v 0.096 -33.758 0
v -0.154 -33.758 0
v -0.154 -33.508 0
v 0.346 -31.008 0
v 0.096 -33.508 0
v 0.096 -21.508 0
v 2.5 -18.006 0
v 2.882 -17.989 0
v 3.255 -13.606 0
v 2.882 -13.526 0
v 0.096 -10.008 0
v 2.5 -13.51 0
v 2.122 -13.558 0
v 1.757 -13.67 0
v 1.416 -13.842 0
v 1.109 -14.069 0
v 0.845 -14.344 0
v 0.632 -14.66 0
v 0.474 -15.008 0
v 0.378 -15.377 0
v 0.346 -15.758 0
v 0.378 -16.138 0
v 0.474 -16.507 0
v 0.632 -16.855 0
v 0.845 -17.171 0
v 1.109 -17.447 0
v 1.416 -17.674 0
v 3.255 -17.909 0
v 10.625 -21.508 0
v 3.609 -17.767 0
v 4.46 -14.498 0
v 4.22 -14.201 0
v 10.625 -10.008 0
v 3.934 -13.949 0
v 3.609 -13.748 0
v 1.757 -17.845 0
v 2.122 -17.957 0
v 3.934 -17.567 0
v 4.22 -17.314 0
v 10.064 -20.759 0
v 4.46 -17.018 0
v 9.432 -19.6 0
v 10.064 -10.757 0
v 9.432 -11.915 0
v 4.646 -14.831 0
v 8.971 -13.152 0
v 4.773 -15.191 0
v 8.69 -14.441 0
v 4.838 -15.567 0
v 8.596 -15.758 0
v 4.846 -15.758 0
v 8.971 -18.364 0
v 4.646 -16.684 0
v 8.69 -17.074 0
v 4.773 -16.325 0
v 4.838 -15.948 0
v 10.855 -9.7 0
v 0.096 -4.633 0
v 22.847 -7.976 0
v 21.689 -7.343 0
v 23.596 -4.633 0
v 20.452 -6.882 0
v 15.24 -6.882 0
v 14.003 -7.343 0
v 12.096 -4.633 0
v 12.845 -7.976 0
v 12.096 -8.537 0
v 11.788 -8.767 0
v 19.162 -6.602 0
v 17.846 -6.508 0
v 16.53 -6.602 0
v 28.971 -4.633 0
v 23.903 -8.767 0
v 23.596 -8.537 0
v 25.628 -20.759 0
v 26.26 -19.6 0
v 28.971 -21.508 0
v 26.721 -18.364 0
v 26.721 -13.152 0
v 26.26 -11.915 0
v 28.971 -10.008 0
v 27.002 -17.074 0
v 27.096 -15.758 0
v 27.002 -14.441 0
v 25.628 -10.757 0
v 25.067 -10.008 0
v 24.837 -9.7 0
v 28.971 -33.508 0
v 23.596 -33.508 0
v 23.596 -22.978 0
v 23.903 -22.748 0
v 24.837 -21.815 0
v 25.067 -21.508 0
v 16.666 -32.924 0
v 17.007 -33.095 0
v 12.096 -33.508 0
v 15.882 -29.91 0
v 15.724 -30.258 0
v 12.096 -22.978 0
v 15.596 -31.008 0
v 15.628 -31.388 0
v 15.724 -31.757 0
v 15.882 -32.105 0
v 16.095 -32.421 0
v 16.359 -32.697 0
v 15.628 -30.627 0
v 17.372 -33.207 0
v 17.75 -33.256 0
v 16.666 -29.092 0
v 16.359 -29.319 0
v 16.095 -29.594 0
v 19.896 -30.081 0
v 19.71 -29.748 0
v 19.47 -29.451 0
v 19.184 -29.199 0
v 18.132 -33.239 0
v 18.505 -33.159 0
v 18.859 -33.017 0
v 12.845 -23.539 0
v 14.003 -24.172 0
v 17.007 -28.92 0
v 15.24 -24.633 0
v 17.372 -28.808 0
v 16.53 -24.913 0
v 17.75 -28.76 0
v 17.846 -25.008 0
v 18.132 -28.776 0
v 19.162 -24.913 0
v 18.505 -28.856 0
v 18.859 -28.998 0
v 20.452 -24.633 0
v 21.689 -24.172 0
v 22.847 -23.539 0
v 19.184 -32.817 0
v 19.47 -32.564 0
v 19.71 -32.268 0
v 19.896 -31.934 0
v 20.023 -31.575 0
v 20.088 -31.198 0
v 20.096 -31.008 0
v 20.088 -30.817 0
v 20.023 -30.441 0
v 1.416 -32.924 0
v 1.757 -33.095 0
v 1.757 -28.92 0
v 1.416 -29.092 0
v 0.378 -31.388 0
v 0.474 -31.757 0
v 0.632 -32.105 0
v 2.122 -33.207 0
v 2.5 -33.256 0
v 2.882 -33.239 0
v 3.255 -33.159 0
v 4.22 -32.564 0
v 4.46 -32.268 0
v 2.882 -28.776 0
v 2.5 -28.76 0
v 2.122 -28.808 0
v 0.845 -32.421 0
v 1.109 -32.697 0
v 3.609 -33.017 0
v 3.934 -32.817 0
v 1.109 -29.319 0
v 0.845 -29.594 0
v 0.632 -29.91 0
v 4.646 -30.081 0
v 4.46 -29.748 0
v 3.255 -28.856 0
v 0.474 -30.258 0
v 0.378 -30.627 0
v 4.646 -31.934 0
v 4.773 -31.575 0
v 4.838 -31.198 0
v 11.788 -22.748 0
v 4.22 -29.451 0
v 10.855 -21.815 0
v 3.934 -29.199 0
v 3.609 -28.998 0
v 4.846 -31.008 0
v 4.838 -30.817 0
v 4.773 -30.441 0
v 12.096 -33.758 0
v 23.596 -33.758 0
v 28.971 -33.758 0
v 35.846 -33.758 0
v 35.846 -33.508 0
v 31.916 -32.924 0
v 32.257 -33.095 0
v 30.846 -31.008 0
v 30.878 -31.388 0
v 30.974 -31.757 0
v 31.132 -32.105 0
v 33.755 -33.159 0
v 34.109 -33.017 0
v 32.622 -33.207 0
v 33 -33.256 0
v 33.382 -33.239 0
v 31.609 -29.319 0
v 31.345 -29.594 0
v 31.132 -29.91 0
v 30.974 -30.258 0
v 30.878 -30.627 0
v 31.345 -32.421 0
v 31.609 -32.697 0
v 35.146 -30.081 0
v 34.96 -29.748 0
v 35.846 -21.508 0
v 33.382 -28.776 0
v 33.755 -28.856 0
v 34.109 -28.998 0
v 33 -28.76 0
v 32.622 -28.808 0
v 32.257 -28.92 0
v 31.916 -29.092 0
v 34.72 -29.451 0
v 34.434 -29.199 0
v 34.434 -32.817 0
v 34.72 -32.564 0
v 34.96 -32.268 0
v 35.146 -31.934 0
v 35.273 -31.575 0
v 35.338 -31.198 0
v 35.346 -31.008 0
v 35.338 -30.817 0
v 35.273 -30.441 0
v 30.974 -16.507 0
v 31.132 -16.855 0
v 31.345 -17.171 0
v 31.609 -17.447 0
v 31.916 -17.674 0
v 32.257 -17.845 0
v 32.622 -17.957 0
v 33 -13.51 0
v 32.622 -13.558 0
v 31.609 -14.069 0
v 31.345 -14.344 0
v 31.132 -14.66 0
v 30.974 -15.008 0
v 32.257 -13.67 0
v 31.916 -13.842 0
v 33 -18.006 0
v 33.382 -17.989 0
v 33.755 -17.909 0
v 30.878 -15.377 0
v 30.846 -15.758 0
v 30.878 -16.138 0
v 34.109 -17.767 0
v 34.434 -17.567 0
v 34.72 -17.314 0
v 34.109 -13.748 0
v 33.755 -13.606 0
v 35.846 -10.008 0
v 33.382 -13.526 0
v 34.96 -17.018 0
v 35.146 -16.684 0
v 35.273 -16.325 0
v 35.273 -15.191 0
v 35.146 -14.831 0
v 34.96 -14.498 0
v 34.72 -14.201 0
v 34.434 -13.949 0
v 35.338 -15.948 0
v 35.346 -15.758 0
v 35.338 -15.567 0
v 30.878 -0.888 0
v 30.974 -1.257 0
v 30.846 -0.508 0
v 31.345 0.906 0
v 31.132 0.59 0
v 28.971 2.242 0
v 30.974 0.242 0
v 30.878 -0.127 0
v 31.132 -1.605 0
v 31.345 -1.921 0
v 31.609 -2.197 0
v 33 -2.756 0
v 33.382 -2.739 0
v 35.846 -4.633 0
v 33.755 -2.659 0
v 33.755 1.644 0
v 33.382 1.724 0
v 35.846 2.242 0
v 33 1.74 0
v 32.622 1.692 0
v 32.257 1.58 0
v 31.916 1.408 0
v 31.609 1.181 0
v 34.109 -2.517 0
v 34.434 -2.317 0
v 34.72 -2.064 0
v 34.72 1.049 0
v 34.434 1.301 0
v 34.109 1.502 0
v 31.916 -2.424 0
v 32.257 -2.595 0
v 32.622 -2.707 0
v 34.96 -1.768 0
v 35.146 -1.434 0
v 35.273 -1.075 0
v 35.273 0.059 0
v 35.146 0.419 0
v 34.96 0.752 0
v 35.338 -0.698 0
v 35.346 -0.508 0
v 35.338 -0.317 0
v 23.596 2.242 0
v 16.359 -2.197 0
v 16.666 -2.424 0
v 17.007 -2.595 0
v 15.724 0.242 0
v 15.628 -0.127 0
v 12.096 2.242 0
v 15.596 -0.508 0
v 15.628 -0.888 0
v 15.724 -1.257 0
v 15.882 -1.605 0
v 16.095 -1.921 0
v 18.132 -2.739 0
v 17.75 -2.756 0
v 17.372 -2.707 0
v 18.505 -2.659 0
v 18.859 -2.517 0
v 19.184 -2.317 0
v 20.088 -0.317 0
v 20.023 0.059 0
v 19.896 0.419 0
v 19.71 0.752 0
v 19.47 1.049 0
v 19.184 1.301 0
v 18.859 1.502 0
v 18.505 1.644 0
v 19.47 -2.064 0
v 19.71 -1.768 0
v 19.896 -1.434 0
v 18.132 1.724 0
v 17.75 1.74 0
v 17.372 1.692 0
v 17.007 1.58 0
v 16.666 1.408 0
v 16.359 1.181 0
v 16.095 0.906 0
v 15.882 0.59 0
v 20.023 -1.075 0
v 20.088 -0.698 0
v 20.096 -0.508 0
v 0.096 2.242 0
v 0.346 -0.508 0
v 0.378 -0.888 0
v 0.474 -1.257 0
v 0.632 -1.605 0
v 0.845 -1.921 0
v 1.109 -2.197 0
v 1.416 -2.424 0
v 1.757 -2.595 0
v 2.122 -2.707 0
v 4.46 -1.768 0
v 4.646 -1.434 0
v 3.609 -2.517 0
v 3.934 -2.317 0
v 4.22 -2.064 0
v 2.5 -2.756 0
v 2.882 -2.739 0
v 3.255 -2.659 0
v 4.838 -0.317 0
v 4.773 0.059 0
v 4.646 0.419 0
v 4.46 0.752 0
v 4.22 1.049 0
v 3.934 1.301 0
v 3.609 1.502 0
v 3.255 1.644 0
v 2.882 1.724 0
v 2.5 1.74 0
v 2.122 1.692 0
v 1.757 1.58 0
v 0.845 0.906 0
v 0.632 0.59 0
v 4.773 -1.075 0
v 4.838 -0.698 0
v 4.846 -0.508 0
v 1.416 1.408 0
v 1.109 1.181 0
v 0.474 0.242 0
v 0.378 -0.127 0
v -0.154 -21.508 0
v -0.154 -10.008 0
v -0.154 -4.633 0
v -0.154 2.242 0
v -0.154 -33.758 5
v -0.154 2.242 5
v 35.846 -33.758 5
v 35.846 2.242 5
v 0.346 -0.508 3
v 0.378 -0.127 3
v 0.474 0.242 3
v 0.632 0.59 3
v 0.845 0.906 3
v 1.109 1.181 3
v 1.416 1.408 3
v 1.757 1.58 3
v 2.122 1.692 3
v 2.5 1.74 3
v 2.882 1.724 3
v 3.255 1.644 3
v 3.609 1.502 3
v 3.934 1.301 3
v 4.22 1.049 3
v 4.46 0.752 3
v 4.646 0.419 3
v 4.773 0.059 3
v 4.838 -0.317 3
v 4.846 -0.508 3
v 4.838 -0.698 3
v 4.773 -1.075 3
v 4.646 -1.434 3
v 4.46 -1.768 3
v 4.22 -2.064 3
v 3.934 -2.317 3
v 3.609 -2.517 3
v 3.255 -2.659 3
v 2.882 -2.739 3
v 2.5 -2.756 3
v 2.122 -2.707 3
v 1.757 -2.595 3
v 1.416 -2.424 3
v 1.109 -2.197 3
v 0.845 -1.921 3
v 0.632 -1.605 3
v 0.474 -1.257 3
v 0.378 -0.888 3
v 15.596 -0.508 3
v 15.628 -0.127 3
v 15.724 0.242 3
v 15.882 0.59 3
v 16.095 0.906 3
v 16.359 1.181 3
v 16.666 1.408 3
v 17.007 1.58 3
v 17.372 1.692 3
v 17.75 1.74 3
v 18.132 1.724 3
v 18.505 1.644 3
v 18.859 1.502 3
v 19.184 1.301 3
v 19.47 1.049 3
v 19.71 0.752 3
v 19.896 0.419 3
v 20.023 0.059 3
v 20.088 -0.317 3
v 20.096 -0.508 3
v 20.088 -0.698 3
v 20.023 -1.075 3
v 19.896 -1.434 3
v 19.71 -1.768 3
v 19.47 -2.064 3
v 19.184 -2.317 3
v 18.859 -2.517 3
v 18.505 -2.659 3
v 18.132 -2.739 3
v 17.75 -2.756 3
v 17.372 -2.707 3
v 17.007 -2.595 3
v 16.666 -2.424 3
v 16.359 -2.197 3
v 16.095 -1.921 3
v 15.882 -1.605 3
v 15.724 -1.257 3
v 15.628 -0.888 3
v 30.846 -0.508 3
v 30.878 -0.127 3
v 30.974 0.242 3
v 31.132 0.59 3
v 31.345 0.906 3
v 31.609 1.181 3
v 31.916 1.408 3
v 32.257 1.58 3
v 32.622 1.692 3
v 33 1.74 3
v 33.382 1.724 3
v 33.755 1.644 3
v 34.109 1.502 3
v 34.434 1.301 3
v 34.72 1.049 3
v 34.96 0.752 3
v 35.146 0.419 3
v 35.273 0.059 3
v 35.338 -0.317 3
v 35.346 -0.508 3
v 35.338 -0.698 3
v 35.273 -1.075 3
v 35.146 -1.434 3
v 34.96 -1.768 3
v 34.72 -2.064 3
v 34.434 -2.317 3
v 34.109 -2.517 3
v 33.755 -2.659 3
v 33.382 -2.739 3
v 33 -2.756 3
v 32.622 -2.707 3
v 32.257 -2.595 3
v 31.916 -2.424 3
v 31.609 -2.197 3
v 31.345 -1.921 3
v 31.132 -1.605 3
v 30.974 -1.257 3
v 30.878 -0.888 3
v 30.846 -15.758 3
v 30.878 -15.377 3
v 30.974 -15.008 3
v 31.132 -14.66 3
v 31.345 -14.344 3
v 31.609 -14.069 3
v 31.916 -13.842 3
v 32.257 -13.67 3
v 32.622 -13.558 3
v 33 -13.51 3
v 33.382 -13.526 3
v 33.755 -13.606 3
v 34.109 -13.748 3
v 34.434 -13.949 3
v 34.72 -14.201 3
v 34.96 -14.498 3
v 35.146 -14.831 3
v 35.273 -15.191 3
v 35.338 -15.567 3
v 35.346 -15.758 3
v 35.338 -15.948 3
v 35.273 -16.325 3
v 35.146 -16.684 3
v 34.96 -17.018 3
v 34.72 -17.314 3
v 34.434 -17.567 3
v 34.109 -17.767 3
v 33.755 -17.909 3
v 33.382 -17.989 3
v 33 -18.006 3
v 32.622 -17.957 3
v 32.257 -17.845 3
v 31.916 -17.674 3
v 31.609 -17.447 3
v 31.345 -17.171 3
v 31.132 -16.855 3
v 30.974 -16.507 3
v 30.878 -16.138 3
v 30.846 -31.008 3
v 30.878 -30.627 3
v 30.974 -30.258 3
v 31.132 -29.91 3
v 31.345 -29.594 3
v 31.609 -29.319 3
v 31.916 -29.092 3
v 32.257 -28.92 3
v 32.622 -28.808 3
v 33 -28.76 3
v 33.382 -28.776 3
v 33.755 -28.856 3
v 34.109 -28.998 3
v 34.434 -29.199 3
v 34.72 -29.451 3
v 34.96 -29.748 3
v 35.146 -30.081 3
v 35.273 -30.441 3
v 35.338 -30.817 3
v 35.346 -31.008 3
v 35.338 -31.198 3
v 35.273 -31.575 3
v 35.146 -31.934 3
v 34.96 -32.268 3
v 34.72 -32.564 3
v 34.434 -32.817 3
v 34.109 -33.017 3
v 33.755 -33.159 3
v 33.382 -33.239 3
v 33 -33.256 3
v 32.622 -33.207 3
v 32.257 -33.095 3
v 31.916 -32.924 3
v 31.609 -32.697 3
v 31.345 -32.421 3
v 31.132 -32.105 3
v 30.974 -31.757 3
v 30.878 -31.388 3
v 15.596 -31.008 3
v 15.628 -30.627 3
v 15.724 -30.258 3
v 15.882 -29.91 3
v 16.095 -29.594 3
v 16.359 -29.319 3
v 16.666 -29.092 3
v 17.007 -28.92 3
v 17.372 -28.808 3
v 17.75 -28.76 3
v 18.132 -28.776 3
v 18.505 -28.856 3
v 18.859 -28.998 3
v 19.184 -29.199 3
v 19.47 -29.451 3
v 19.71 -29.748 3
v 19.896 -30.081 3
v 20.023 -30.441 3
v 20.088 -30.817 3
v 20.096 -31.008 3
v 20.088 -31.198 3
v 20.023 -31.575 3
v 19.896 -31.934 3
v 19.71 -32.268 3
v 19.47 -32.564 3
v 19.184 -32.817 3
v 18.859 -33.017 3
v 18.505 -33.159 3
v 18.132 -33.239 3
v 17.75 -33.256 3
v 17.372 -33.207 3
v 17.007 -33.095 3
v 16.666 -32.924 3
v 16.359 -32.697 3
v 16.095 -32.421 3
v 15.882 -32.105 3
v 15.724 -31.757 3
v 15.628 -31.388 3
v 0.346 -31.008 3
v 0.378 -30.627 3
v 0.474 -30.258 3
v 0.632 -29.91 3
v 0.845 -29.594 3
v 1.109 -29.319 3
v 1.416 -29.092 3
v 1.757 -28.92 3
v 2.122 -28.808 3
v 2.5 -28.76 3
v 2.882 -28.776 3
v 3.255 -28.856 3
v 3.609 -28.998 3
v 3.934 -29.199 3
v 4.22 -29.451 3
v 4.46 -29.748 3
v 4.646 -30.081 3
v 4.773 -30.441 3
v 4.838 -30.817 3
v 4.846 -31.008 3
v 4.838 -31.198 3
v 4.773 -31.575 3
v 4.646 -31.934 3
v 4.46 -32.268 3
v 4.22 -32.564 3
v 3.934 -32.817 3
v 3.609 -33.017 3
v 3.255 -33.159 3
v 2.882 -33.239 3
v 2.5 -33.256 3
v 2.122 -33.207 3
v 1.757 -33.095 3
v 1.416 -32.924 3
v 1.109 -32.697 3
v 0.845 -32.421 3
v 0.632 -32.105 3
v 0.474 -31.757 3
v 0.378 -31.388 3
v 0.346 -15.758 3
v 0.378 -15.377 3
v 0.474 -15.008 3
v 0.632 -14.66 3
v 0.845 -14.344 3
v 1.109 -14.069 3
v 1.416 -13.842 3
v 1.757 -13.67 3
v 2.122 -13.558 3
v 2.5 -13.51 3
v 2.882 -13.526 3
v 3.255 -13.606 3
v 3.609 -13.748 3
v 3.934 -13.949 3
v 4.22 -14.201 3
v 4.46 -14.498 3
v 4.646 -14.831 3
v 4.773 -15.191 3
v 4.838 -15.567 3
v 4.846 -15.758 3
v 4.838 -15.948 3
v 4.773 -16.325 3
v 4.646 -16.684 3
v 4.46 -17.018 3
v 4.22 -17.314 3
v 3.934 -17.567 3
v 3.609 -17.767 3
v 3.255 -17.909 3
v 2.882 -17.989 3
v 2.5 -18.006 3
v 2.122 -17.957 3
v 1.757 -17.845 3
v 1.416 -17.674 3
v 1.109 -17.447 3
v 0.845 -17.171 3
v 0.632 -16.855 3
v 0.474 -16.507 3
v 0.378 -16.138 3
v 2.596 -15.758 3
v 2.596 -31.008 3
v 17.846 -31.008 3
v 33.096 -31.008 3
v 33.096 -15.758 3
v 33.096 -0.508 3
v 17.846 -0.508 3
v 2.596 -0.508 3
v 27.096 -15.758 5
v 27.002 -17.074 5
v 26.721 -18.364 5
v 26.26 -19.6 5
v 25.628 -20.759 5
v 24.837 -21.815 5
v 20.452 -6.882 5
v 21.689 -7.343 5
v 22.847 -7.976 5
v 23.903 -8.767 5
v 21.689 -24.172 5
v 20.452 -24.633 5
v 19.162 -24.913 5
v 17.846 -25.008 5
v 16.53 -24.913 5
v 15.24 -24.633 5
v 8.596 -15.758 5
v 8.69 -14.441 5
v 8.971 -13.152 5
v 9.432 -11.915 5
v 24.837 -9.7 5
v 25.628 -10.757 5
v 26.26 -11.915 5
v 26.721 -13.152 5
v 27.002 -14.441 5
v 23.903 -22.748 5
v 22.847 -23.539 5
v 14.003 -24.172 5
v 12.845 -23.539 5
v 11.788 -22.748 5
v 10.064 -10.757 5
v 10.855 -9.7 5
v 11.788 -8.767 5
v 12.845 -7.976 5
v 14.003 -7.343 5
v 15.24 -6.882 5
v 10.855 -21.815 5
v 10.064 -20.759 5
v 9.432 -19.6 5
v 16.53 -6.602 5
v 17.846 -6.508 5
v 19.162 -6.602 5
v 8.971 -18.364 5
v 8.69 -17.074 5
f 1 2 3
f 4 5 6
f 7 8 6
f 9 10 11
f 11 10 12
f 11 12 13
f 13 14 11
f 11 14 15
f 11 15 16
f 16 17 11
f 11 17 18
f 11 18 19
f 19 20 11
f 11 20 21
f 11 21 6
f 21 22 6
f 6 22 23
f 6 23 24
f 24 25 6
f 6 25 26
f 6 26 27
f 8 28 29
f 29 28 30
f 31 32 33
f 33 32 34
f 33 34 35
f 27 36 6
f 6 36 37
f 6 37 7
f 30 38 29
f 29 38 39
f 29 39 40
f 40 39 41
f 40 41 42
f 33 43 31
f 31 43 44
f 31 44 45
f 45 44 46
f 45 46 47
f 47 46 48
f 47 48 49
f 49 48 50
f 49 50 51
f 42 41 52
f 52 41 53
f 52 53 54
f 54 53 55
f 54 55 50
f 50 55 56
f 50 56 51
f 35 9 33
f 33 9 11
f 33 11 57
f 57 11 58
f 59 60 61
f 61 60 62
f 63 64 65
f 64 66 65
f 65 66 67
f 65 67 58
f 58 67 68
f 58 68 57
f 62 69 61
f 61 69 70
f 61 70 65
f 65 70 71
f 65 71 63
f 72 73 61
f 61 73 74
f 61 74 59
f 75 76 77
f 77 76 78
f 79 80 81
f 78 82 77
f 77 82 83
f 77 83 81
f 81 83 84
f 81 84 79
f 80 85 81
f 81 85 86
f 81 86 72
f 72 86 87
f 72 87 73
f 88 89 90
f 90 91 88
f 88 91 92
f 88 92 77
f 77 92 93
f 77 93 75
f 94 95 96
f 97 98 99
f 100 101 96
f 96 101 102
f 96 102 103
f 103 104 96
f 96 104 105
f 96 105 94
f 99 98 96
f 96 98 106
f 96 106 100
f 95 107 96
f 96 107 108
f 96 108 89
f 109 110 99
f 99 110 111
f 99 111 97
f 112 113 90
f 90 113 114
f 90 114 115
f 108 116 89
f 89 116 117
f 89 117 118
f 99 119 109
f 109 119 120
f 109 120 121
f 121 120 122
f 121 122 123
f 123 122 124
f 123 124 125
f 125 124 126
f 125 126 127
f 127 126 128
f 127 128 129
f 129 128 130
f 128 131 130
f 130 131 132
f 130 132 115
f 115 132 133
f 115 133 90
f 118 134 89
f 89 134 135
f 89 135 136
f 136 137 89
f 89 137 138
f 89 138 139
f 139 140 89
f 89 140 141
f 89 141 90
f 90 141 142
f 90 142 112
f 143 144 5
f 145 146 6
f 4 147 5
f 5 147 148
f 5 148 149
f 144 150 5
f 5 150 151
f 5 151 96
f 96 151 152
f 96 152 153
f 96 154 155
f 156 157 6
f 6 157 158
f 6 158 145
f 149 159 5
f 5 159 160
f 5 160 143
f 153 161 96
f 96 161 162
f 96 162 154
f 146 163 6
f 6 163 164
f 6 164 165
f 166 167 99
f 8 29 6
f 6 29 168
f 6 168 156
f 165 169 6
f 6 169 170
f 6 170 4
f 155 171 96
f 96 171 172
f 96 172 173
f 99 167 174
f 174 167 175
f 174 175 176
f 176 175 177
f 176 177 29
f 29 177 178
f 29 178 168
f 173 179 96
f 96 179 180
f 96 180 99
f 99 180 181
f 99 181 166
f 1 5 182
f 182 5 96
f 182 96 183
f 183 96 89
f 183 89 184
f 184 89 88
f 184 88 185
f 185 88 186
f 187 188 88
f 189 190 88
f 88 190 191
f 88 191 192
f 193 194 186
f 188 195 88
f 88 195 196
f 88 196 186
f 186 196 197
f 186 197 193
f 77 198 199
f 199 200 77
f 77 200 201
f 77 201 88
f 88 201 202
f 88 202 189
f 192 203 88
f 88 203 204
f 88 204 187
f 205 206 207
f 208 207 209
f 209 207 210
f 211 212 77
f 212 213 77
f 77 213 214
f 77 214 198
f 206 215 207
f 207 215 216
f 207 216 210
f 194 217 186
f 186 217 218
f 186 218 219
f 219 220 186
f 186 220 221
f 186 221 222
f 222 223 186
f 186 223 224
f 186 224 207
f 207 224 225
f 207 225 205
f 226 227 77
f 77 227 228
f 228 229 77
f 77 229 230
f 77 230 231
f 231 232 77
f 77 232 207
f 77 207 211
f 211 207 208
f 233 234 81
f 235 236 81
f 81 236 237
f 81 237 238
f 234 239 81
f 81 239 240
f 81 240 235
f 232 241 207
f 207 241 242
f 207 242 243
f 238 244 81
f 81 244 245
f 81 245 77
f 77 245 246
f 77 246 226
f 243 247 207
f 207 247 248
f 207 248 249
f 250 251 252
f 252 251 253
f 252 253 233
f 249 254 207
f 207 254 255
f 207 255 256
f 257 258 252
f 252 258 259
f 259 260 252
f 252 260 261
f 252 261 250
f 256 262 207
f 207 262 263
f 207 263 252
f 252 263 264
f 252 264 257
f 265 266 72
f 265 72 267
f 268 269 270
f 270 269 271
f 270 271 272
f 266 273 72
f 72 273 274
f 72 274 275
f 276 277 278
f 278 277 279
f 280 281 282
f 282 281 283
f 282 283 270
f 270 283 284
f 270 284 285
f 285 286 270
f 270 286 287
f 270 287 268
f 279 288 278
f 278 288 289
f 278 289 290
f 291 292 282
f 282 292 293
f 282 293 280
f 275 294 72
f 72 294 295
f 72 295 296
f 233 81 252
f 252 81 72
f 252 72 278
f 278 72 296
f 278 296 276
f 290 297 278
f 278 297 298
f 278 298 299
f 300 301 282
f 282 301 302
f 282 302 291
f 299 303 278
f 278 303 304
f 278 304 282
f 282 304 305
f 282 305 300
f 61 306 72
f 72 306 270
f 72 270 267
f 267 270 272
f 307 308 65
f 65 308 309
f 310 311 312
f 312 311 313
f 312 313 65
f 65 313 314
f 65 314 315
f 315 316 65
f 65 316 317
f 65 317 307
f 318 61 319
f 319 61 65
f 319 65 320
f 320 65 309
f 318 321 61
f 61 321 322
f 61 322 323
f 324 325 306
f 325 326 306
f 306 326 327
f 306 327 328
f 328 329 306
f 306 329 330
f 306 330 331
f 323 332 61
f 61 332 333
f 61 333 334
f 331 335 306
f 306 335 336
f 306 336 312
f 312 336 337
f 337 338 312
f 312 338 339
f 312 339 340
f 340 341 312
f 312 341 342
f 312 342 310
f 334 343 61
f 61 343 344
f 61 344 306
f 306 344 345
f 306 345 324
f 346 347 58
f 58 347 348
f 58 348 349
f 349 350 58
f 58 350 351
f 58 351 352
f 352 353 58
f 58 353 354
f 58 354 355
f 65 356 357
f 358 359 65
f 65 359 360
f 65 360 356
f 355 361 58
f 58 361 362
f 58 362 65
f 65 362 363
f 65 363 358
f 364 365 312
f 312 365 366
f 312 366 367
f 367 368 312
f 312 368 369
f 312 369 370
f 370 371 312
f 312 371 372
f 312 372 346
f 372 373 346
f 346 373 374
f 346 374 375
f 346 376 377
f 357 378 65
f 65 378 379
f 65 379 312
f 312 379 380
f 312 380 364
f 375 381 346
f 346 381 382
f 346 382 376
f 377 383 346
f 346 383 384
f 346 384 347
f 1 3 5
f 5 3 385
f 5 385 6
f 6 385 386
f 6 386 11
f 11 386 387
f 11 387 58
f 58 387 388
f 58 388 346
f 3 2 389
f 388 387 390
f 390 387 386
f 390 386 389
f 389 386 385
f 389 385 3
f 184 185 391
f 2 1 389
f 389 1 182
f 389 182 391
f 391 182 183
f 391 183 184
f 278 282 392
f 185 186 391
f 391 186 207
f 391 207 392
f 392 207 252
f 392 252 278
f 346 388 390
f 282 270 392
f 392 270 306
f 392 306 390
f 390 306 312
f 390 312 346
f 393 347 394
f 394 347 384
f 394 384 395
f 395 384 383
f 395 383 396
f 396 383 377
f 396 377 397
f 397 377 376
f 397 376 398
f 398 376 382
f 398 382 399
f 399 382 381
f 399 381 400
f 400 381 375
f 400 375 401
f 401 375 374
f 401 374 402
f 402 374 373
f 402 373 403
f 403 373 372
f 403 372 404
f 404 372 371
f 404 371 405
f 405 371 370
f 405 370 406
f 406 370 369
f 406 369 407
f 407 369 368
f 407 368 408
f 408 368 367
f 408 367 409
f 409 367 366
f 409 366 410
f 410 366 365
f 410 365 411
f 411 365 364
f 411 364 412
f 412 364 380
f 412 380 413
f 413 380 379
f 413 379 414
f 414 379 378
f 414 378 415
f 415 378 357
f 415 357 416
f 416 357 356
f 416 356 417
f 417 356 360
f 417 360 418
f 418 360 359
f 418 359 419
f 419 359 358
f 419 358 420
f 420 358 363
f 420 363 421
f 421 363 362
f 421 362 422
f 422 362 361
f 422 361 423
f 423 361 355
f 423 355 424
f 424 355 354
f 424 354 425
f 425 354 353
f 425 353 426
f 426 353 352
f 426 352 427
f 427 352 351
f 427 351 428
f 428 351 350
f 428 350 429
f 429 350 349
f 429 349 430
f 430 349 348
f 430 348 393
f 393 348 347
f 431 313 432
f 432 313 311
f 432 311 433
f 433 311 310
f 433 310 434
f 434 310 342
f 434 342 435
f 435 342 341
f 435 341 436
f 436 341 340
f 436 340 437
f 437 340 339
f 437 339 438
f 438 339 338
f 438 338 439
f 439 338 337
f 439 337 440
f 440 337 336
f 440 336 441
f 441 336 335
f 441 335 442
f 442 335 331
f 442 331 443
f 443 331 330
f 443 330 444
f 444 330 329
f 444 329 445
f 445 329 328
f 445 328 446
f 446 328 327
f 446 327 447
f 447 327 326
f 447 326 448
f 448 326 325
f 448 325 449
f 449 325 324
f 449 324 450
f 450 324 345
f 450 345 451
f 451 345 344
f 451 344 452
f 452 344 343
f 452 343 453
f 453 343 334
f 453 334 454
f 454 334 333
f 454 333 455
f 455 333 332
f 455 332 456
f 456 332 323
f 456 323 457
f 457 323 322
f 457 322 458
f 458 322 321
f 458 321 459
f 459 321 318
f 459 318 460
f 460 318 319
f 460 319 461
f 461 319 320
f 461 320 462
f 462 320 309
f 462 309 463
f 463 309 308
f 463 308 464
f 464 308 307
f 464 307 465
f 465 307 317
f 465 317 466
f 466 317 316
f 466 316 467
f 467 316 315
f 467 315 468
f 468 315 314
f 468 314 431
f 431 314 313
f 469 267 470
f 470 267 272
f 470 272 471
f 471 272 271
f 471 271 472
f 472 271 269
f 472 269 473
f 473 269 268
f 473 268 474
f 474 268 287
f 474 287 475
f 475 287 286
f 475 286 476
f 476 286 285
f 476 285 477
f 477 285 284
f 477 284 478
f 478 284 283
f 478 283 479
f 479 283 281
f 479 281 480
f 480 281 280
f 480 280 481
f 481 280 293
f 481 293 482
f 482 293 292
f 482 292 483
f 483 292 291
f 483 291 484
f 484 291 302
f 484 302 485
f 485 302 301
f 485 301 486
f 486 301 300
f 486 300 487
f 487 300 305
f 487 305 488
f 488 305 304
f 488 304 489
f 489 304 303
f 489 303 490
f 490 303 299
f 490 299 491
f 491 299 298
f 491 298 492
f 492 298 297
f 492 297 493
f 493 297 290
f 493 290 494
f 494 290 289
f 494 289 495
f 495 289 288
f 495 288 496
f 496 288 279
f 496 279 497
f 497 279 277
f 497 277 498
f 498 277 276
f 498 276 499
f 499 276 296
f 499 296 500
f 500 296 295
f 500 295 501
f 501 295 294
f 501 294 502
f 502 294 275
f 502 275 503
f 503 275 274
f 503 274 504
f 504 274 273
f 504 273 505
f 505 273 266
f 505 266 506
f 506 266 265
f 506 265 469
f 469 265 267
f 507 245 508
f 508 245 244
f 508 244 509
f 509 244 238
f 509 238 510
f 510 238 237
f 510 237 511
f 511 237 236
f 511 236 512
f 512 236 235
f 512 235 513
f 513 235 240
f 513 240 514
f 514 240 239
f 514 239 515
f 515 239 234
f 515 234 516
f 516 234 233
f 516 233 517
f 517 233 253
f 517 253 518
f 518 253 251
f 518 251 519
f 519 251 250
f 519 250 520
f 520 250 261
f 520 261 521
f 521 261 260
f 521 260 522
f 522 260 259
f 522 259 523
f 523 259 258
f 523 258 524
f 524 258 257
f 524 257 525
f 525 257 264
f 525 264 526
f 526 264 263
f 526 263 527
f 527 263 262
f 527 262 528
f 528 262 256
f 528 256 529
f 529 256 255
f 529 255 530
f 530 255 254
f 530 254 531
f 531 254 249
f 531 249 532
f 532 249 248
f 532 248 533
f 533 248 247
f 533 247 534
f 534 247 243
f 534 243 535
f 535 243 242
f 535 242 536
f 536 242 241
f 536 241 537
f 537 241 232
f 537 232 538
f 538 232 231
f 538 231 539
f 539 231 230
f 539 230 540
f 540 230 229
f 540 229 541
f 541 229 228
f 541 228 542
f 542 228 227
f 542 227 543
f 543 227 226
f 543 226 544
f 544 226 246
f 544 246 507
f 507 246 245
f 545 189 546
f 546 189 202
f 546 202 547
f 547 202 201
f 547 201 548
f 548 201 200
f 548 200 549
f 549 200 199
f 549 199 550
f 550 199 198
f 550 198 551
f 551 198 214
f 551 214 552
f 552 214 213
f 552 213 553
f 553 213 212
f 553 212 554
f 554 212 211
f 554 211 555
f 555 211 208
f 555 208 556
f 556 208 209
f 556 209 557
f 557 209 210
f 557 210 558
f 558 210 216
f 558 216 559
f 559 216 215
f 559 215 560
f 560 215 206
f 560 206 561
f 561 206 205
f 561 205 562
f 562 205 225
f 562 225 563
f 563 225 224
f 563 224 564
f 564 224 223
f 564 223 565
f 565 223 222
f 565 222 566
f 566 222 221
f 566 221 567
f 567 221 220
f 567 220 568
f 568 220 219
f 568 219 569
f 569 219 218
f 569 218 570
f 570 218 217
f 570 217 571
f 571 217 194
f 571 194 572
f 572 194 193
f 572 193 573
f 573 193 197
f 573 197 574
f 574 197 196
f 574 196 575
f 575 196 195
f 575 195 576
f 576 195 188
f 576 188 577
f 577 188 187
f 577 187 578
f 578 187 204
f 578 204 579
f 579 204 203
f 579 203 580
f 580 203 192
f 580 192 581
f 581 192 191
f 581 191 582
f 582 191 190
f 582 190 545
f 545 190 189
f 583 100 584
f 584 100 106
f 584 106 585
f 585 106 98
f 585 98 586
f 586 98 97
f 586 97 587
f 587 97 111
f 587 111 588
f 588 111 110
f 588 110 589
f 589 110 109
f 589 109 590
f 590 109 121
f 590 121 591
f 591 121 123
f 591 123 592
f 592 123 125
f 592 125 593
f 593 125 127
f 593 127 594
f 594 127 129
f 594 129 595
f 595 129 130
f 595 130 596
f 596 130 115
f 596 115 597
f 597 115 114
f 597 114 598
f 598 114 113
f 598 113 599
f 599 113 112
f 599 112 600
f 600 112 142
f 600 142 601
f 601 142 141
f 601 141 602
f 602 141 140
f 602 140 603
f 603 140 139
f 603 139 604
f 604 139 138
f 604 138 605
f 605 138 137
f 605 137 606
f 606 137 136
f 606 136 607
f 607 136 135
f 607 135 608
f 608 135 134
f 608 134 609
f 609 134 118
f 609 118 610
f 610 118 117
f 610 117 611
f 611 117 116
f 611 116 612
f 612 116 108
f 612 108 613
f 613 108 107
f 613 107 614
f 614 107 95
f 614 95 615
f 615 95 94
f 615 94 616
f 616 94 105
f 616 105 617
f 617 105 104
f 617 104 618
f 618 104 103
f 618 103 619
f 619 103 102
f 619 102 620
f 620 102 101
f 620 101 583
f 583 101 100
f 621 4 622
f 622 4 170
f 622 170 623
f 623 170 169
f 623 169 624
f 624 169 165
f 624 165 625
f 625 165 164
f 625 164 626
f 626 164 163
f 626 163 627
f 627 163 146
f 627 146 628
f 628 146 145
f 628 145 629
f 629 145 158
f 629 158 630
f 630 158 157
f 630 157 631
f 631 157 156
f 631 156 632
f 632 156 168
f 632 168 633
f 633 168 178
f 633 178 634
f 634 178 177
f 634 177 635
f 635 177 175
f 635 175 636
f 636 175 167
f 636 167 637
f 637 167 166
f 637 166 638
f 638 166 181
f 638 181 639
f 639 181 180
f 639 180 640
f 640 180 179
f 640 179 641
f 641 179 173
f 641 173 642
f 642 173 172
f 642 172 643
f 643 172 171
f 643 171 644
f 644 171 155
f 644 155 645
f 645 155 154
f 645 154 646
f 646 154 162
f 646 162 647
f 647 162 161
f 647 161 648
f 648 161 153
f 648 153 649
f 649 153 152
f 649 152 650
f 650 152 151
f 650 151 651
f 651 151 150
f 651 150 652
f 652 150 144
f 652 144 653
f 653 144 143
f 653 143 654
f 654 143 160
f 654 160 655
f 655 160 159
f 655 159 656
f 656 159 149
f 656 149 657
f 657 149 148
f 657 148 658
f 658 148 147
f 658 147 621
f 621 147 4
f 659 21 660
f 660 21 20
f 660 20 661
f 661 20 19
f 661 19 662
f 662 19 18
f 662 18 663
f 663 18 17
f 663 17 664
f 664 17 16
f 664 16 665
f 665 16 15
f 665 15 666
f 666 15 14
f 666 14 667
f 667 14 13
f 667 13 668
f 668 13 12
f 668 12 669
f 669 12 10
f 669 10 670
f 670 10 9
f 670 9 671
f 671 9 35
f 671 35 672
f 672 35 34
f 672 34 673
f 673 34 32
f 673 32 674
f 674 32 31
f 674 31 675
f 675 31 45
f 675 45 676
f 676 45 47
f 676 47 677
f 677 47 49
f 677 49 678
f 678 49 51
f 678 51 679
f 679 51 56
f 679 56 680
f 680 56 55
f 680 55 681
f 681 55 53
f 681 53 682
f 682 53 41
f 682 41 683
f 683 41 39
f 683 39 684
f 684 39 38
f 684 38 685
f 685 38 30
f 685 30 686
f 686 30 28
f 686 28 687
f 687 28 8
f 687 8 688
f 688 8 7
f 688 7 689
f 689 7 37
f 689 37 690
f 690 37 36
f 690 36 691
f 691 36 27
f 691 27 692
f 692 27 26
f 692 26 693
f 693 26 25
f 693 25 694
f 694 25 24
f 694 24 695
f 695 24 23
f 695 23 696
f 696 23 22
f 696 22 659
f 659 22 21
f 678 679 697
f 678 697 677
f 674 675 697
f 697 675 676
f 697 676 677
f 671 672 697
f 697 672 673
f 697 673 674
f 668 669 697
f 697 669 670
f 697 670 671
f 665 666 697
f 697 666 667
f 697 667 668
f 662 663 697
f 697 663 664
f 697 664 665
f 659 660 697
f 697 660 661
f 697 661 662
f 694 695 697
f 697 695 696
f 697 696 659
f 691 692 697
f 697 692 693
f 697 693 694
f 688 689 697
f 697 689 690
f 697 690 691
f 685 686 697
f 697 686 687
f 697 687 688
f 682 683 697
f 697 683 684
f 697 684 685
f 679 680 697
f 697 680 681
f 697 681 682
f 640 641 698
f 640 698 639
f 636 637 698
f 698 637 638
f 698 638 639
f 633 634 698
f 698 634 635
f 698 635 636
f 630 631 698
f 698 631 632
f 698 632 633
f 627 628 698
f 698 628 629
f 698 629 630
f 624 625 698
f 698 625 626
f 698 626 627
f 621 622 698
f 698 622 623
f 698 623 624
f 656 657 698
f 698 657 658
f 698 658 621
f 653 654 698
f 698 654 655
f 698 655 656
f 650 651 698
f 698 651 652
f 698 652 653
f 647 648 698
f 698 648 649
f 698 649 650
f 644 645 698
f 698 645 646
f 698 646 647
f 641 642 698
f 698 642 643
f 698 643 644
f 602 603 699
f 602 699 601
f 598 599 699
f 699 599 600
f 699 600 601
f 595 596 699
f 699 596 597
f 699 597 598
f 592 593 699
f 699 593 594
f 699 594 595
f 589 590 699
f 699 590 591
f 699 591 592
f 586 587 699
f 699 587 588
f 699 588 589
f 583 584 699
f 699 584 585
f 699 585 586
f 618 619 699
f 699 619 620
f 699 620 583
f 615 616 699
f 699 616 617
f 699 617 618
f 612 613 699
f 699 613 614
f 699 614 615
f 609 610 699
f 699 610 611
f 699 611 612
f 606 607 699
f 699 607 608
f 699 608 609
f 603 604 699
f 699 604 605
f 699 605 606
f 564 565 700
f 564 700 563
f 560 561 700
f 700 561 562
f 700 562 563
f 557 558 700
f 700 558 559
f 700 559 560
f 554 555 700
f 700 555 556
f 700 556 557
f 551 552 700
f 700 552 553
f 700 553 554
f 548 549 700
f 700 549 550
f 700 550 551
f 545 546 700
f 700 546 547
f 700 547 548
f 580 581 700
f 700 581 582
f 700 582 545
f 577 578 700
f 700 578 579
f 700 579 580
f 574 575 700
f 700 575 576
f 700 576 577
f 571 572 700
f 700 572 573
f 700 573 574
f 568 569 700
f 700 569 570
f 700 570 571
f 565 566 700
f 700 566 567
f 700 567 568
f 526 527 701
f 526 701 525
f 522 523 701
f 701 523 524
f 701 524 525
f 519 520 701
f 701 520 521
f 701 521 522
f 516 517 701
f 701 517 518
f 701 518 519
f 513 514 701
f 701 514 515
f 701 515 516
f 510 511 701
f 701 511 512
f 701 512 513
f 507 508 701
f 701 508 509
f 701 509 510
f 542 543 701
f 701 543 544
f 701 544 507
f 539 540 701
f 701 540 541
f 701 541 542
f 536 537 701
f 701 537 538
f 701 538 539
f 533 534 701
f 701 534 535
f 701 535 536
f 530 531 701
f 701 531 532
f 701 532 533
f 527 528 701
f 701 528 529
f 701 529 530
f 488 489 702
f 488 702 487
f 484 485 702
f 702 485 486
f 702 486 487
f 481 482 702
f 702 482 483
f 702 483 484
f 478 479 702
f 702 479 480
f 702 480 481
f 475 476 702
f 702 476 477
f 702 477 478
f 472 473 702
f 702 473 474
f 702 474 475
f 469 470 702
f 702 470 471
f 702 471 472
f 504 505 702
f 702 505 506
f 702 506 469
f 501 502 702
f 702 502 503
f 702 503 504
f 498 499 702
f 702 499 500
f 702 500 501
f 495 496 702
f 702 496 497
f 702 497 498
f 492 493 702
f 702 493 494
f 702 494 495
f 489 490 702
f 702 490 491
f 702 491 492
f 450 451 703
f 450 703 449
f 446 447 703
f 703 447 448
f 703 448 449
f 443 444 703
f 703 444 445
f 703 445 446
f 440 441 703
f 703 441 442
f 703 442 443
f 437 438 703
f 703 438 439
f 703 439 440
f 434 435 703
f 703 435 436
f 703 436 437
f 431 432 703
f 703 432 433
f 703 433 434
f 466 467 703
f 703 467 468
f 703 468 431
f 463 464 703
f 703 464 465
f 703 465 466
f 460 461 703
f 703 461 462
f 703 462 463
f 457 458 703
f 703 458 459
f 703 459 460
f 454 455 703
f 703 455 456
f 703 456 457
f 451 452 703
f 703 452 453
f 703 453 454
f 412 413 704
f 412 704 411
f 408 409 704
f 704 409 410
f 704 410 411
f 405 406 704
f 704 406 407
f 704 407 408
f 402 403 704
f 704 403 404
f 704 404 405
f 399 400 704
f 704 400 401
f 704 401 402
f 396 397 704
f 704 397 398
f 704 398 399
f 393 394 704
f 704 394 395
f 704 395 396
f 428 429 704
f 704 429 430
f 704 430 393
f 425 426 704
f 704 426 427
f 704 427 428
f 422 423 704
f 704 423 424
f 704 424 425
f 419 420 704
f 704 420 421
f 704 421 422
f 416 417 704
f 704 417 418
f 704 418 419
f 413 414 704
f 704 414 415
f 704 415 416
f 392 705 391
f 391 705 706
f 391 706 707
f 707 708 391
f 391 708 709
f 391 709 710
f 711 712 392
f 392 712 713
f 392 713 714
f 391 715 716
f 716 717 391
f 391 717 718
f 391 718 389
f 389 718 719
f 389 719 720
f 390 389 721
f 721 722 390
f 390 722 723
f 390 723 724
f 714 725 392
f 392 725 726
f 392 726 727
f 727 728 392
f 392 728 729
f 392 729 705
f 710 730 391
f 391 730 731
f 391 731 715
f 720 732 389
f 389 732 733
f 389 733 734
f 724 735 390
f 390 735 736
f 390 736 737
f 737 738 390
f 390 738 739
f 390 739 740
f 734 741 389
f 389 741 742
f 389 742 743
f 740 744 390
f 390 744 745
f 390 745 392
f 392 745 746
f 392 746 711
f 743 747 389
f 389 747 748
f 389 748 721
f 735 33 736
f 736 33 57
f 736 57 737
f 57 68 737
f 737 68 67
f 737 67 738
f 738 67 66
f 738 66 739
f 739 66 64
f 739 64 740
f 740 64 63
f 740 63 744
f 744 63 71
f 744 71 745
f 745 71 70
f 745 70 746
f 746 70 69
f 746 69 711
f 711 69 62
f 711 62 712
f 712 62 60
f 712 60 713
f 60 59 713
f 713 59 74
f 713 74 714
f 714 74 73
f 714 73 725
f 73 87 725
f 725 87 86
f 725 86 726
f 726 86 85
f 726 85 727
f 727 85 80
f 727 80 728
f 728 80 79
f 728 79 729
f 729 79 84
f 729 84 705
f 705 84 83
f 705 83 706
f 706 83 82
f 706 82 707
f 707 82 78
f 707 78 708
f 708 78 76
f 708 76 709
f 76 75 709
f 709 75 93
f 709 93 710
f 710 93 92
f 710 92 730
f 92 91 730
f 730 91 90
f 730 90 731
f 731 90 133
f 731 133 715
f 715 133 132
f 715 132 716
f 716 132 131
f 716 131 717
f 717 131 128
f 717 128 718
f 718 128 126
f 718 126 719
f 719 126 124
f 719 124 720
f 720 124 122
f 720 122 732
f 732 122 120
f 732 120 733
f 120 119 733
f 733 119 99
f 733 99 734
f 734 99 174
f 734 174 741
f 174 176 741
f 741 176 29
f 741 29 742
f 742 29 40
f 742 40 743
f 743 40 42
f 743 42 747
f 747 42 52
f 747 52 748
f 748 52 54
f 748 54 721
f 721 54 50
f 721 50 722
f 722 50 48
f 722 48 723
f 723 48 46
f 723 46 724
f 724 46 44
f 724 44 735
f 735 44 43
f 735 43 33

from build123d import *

# Parameters (mm, degrees)
SKETCH_1_W          = 36
SKETCH_1_H          = 36
SKETCH_1_R          = 2.25
EXTRUDE_1_DEPTH     = 3
SKETCH_2_W          = 36
SKETCH_2_H          = 36
EXTRUDE_2_DEPTH     = 2
SKETCH_4_R          = 9.25
CUT_EXTRUDE_1_DEPTH = 50.492465658


with BuildPart() as part:
    # 스케치1 → 보스-돌출1 (new body)
    with BuildSketch(Plane.XY):
        with Locations((17.845923561, -15.757575758)):
            Rectangle(SKETCH_1_W, SKETCH_1_H)
        with Locations((2.595923561, -0.507575758)):
            Circle(SKETCH_1_R, mode=Mode.SUBTRACT)
        with Locations((17.845923561, -0.507575758)):
            Circle(SKETCH_1_R, mode=Mode.SUBTRACT)
        with Locations((33.095923561, -0.507575758)):
            Circle(SKETCH_1_R, mode=Mode.SUBTRACT)
        with Locations((33.095923561, -15.757575758)):
            Circle(SKETCH_1_R, mode=Mode.SUBTRACT)
        with Locations((33.095923561, -31.007575758)):
            Circle(SKETCH_1_R, mode=Mode.SUBTRACT)
        with Locations((17.845923561, -31.007575758)):
            Circle(SKETCH_1_R, mode=Mode.SUBTRACT)
        with Locations((2.595923561, -31.007575758)):
            Circle(SKETCH_1_R, mode=Mode.SUBTRACT)
        with Locations((2.595923561, -15.757575758)):
            Circle(SKETCH_1_R, mode=Mode.SUBTRACT)
    extrude(amount=EXTRUDE_1_DEPTH)

    # 스케치2 → 보스-돌출2 (add)
    with BuildSketch(Plane.XY.offset(3)):
        with Locations((17.845923561, -15.757575758)):
            Rectangle(SKETCH_2_W, SKETCH_2_H)
    extrude(amount=EXTRUDE_2_DEPTH)

    # 스케치4 → 컷-돌출1 (cut, through all)
    with BuildSketch(Plane(origin=(0, 0, 0), x_dir=(-1, 0, 0), z_dir=(0, 0, -1))):
        with Locations((-17.845923561, -15.757575758)):
            Circle(SKETCH_4_R)
    extrude(amount=-CUT_EXTRUDE_1_DEPTH, mode=Mode.SUBTRACT)


solid = part.part
